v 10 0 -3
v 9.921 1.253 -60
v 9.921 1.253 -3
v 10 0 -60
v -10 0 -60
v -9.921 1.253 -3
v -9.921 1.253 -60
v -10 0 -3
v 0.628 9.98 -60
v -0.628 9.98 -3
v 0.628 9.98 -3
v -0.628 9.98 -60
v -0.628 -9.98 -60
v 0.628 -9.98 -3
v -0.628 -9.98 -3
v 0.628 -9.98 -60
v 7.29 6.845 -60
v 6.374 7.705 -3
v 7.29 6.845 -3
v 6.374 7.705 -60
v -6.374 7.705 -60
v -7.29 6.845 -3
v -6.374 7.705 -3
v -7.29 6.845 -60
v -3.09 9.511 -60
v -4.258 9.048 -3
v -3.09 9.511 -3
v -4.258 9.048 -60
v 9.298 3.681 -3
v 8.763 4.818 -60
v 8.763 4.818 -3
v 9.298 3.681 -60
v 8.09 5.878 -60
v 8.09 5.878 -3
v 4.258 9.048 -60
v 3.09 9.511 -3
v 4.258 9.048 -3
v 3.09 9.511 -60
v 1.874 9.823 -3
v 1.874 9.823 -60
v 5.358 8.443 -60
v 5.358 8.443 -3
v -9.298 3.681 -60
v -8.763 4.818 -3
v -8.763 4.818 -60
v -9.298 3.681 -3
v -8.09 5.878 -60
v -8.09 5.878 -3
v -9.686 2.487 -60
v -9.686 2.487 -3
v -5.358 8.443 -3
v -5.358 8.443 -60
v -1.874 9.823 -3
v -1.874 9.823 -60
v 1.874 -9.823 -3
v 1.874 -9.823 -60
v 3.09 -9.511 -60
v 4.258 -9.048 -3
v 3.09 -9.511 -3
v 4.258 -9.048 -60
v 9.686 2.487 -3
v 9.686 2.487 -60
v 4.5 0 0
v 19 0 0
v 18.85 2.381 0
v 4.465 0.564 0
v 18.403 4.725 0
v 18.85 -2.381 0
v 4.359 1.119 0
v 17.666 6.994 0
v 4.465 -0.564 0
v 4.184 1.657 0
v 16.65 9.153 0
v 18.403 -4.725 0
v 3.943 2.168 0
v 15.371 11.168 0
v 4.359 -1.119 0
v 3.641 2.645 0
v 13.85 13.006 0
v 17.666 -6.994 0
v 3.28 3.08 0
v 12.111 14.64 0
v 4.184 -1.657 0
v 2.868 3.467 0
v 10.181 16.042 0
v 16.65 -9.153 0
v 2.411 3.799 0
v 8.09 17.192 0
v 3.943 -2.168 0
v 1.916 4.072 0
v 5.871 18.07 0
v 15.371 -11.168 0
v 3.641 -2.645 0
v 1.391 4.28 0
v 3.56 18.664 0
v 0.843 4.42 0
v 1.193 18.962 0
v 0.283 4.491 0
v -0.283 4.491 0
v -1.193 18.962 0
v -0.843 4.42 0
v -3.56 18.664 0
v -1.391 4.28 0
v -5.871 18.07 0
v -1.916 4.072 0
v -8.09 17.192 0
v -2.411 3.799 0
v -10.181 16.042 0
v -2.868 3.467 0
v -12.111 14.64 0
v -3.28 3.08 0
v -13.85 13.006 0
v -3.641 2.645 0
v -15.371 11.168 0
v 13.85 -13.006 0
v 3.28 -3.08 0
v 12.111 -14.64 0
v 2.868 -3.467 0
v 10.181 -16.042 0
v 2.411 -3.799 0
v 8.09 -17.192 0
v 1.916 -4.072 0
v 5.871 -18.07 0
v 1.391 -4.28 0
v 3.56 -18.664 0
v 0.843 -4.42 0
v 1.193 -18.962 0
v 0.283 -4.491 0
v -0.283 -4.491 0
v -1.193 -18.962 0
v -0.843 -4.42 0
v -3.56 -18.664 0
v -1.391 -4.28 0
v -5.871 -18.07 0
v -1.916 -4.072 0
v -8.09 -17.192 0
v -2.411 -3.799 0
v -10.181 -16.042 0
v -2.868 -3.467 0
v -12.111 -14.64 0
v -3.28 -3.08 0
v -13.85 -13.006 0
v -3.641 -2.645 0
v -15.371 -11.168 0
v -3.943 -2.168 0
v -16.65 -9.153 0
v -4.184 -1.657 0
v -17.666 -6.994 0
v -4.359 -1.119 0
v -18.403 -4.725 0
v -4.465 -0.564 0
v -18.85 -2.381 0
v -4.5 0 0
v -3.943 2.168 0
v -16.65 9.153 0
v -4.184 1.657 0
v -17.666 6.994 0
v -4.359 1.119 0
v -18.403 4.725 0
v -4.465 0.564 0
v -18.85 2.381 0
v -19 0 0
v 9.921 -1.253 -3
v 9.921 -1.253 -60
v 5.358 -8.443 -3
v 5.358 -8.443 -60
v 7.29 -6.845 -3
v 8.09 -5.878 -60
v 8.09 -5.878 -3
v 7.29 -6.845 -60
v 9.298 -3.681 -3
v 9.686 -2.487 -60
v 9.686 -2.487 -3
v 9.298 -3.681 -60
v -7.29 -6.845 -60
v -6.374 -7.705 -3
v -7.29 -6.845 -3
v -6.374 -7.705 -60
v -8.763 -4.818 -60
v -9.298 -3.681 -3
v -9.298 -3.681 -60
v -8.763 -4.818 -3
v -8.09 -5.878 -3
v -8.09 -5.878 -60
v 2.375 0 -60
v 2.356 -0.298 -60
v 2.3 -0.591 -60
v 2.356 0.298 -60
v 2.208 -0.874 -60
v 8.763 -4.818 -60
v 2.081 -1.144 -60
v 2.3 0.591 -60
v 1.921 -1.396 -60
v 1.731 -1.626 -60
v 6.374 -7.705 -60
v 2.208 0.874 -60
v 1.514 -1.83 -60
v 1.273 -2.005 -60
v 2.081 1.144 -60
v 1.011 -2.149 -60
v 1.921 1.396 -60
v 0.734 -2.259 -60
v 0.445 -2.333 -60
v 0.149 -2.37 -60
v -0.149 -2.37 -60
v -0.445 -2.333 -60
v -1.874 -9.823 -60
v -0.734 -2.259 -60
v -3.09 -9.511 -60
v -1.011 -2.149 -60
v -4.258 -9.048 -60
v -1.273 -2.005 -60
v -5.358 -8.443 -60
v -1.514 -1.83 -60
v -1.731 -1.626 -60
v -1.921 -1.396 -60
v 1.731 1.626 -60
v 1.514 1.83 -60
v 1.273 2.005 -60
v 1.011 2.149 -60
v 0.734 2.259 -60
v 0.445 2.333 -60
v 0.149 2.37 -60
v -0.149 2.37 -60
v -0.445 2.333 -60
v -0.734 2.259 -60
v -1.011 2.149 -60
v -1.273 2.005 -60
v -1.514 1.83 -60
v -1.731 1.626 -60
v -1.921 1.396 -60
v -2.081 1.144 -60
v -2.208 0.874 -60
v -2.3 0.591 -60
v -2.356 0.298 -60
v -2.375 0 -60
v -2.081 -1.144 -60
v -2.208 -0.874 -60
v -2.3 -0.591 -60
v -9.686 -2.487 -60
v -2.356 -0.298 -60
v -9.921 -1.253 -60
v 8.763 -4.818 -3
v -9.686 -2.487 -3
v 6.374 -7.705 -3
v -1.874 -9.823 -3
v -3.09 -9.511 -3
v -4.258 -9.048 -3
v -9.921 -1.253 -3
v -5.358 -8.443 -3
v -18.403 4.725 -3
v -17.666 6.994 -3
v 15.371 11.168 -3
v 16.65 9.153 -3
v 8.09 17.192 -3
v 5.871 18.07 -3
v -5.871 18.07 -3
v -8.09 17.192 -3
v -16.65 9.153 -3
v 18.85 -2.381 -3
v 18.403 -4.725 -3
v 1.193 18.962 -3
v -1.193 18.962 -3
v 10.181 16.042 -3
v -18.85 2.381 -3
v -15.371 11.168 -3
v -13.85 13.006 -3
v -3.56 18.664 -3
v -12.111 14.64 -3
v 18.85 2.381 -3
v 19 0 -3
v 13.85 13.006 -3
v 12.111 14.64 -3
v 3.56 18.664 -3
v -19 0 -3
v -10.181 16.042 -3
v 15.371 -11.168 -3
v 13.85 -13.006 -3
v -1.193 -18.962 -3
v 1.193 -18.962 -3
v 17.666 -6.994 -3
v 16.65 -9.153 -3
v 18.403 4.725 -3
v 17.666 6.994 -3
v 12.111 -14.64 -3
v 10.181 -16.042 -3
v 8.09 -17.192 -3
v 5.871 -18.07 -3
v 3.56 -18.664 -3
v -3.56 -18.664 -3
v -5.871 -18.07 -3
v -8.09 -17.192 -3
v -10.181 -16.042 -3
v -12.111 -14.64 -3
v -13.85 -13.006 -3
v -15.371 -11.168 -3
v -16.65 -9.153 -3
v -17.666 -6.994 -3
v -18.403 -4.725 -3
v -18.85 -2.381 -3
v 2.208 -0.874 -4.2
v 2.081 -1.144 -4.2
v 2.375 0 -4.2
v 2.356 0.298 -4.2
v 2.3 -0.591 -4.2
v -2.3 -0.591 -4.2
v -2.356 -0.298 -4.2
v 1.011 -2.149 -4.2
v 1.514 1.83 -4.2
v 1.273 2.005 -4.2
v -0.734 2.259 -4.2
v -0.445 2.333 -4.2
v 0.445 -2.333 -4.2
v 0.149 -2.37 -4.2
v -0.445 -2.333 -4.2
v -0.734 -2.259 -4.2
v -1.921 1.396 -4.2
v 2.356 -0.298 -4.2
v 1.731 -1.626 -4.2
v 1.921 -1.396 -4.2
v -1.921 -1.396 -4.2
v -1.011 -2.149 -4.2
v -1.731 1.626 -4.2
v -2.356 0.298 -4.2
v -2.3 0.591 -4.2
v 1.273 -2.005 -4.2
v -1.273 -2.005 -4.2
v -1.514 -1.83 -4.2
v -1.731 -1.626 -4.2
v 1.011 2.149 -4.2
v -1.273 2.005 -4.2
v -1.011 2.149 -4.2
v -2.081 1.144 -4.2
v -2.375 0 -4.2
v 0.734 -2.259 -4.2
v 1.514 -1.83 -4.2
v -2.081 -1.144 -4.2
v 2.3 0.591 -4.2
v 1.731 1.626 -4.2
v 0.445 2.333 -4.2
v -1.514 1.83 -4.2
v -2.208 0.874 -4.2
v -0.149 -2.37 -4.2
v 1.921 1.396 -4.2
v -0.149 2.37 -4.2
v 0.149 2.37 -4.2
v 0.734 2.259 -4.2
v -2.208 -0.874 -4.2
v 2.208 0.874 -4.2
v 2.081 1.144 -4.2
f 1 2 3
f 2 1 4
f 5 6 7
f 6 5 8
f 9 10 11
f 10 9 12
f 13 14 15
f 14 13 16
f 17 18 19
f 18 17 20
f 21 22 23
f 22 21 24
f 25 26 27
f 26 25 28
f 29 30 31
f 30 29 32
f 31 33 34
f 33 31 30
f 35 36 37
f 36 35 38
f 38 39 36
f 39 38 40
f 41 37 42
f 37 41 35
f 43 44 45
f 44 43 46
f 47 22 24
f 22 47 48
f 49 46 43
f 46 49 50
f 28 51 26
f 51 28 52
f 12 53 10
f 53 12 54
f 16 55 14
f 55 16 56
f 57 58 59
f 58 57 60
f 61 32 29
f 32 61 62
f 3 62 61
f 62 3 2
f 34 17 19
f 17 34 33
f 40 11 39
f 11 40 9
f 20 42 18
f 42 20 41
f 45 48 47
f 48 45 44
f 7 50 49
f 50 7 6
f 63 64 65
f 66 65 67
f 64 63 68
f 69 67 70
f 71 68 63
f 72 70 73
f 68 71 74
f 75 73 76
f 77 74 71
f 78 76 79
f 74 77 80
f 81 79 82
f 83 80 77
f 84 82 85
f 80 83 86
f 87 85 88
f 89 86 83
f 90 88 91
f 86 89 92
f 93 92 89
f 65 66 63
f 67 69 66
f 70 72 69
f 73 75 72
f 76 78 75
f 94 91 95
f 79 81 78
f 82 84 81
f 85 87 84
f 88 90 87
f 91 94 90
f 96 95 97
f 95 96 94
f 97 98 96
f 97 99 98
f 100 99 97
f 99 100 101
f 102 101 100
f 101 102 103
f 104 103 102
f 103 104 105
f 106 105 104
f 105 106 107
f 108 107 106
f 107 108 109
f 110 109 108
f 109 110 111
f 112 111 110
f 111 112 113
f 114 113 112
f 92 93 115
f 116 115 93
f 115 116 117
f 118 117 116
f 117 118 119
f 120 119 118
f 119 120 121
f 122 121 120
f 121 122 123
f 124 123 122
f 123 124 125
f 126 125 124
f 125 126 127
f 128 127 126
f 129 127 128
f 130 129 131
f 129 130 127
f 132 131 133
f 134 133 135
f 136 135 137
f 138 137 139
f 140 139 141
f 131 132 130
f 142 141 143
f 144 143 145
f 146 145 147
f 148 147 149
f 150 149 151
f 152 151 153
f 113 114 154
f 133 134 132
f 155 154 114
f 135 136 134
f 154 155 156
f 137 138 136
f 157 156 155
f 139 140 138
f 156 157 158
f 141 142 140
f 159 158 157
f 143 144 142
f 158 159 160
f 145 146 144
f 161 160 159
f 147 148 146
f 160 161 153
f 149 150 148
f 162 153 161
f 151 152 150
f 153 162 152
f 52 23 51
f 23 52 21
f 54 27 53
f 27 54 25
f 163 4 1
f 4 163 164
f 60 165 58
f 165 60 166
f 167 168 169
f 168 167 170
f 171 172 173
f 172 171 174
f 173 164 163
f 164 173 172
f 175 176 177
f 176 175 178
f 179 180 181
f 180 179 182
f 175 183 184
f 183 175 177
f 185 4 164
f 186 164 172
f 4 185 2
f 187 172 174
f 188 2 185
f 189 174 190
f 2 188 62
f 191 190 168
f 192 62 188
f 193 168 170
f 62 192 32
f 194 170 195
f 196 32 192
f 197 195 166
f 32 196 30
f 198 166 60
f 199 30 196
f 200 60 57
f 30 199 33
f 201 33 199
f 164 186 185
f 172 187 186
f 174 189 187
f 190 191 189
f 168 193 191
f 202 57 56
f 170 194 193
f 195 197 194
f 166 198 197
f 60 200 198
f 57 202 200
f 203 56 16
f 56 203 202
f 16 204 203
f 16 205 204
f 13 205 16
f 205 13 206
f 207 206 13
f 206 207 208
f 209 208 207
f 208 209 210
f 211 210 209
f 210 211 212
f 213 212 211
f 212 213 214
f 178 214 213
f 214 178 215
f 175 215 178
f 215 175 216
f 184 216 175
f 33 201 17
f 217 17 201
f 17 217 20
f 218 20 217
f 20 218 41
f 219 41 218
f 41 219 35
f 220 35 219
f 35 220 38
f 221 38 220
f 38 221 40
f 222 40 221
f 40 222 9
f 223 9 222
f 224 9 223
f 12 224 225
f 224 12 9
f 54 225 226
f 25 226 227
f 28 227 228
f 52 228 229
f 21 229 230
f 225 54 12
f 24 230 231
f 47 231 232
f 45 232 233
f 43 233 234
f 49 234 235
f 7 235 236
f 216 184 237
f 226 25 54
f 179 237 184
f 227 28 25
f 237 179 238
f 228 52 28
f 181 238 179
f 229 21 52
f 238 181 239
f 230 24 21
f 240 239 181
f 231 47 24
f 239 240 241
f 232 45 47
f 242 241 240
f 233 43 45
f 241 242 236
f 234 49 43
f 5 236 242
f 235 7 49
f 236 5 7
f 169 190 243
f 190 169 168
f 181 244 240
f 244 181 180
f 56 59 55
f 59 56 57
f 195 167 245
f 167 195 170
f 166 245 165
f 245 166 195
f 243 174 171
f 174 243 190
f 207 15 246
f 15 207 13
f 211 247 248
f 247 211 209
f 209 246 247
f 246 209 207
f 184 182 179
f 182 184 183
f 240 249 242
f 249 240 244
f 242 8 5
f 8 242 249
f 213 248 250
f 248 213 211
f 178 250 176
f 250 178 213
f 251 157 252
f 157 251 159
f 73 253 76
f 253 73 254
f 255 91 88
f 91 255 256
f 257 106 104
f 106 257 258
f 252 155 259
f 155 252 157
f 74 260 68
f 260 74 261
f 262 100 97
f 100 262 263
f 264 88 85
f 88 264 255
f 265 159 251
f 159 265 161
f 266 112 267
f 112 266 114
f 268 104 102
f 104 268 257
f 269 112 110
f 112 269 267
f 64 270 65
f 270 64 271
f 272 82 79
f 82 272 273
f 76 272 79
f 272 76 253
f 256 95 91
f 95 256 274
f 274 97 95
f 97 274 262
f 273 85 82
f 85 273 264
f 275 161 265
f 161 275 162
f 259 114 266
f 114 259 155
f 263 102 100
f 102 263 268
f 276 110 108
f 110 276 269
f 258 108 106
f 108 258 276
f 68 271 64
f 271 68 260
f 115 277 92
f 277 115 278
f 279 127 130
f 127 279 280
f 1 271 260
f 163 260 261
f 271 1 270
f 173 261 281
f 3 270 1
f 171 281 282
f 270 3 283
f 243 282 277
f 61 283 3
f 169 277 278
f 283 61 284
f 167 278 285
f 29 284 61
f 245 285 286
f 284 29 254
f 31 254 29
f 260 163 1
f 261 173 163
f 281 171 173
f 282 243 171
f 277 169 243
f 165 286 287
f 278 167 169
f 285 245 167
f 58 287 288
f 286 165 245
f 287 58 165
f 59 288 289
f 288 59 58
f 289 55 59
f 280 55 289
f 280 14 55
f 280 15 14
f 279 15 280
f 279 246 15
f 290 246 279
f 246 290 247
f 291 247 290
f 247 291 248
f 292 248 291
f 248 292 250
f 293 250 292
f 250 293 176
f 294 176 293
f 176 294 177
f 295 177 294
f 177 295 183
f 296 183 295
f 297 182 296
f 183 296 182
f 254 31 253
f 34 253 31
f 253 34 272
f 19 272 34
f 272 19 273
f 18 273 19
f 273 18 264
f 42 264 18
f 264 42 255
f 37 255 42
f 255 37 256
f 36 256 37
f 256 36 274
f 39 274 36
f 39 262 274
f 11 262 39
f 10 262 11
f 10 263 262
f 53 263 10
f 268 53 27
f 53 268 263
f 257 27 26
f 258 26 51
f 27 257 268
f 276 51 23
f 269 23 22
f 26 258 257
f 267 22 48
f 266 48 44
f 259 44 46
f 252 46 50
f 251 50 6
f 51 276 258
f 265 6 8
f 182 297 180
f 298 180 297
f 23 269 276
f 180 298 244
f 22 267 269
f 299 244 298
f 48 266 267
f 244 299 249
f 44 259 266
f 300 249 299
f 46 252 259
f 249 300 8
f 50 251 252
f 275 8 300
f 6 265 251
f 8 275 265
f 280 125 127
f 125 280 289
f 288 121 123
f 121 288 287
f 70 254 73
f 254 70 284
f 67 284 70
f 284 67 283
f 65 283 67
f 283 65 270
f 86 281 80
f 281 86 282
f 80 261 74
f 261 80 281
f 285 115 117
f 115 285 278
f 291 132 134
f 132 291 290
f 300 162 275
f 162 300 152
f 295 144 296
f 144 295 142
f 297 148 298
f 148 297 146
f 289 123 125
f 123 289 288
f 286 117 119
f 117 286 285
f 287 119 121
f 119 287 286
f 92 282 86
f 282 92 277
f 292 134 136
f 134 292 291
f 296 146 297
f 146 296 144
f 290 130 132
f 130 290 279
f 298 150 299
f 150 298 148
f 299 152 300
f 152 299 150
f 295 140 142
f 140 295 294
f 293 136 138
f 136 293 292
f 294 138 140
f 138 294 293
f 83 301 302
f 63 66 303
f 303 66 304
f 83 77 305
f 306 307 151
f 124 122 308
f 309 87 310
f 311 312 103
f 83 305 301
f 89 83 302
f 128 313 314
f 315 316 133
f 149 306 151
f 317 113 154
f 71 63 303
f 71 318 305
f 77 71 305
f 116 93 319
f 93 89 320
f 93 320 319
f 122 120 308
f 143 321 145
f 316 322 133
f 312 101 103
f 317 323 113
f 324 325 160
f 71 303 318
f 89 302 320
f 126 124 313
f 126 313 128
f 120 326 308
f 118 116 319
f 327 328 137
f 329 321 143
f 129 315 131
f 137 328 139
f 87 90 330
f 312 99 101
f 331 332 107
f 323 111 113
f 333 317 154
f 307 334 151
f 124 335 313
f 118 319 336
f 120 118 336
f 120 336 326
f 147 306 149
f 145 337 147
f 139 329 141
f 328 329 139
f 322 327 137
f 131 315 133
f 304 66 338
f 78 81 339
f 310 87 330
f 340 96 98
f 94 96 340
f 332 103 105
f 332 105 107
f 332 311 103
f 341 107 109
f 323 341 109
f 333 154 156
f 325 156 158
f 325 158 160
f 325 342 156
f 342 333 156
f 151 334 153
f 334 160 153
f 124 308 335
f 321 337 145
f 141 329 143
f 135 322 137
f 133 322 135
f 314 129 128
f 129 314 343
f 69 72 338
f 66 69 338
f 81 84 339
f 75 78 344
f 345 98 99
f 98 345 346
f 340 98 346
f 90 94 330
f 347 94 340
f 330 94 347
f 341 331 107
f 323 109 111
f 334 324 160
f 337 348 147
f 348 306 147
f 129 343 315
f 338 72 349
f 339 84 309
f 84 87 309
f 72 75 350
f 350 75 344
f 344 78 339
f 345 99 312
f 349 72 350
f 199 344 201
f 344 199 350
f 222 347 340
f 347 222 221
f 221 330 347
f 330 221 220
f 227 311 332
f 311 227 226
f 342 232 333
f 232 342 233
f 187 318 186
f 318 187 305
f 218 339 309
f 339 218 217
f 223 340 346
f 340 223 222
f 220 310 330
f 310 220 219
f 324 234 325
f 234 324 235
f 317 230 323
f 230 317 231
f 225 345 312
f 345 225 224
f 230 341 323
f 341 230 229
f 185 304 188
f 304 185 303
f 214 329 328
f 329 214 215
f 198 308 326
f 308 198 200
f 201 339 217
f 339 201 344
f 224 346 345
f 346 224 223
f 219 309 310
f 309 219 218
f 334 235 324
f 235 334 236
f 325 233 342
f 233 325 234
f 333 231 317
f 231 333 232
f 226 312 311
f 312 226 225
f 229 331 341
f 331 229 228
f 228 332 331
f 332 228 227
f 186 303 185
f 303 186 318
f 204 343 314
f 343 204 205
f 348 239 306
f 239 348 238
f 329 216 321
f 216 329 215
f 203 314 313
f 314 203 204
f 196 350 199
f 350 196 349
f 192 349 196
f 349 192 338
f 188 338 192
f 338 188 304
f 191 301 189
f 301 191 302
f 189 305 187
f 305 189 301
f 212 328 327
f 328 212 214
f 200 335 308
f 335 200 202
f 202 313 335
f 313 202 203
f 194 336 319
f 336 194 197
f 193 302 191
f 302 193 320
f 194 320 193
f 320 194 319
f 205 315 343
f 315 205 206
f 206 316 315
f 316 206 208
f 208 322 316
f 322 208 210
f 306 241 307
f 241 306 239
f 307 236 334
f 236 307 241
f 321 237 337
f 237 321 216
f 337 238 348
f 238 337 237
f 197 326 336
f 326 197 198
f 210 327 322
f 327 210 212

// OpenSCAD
$fn = 50;


difference() {
	union() {
		translate(v = [0, 0, -60.0000000000]) {
			cylinder(h = 60, r = 10.0000000000);
		}
		translate(v = [0, 0, -3.0000000000]) {
			cylinder(h = 3, r = 19.0000000000);
		}
	}
	union() {
		translate(v = [0, 0, 0]) {
			rotate(a = [0, 0, 0]) {
				difference() {
					union() {
						#translate(v = [0, 0, -60.0000000000]) {
							cylinder(h = 60, r = 2.2500000000);
						}
						#translate(v = [0, 0, -4.2000000000]) {
							cylinder(h = 4.2000000000, r1 = 2.3750000000, r2 = 4.5000000000);
						}
						#translate(v = [0, 0, -60.0000000000]) {
							cylinder(h = 60, r = 2.3750000000);
						}
						#translate(v = [0, 0, -60.0000000000]) {
							cylinder(h = 60, r = 2.2500000000);
						}
					}
					union();
				}
			}
		}
	}
}
